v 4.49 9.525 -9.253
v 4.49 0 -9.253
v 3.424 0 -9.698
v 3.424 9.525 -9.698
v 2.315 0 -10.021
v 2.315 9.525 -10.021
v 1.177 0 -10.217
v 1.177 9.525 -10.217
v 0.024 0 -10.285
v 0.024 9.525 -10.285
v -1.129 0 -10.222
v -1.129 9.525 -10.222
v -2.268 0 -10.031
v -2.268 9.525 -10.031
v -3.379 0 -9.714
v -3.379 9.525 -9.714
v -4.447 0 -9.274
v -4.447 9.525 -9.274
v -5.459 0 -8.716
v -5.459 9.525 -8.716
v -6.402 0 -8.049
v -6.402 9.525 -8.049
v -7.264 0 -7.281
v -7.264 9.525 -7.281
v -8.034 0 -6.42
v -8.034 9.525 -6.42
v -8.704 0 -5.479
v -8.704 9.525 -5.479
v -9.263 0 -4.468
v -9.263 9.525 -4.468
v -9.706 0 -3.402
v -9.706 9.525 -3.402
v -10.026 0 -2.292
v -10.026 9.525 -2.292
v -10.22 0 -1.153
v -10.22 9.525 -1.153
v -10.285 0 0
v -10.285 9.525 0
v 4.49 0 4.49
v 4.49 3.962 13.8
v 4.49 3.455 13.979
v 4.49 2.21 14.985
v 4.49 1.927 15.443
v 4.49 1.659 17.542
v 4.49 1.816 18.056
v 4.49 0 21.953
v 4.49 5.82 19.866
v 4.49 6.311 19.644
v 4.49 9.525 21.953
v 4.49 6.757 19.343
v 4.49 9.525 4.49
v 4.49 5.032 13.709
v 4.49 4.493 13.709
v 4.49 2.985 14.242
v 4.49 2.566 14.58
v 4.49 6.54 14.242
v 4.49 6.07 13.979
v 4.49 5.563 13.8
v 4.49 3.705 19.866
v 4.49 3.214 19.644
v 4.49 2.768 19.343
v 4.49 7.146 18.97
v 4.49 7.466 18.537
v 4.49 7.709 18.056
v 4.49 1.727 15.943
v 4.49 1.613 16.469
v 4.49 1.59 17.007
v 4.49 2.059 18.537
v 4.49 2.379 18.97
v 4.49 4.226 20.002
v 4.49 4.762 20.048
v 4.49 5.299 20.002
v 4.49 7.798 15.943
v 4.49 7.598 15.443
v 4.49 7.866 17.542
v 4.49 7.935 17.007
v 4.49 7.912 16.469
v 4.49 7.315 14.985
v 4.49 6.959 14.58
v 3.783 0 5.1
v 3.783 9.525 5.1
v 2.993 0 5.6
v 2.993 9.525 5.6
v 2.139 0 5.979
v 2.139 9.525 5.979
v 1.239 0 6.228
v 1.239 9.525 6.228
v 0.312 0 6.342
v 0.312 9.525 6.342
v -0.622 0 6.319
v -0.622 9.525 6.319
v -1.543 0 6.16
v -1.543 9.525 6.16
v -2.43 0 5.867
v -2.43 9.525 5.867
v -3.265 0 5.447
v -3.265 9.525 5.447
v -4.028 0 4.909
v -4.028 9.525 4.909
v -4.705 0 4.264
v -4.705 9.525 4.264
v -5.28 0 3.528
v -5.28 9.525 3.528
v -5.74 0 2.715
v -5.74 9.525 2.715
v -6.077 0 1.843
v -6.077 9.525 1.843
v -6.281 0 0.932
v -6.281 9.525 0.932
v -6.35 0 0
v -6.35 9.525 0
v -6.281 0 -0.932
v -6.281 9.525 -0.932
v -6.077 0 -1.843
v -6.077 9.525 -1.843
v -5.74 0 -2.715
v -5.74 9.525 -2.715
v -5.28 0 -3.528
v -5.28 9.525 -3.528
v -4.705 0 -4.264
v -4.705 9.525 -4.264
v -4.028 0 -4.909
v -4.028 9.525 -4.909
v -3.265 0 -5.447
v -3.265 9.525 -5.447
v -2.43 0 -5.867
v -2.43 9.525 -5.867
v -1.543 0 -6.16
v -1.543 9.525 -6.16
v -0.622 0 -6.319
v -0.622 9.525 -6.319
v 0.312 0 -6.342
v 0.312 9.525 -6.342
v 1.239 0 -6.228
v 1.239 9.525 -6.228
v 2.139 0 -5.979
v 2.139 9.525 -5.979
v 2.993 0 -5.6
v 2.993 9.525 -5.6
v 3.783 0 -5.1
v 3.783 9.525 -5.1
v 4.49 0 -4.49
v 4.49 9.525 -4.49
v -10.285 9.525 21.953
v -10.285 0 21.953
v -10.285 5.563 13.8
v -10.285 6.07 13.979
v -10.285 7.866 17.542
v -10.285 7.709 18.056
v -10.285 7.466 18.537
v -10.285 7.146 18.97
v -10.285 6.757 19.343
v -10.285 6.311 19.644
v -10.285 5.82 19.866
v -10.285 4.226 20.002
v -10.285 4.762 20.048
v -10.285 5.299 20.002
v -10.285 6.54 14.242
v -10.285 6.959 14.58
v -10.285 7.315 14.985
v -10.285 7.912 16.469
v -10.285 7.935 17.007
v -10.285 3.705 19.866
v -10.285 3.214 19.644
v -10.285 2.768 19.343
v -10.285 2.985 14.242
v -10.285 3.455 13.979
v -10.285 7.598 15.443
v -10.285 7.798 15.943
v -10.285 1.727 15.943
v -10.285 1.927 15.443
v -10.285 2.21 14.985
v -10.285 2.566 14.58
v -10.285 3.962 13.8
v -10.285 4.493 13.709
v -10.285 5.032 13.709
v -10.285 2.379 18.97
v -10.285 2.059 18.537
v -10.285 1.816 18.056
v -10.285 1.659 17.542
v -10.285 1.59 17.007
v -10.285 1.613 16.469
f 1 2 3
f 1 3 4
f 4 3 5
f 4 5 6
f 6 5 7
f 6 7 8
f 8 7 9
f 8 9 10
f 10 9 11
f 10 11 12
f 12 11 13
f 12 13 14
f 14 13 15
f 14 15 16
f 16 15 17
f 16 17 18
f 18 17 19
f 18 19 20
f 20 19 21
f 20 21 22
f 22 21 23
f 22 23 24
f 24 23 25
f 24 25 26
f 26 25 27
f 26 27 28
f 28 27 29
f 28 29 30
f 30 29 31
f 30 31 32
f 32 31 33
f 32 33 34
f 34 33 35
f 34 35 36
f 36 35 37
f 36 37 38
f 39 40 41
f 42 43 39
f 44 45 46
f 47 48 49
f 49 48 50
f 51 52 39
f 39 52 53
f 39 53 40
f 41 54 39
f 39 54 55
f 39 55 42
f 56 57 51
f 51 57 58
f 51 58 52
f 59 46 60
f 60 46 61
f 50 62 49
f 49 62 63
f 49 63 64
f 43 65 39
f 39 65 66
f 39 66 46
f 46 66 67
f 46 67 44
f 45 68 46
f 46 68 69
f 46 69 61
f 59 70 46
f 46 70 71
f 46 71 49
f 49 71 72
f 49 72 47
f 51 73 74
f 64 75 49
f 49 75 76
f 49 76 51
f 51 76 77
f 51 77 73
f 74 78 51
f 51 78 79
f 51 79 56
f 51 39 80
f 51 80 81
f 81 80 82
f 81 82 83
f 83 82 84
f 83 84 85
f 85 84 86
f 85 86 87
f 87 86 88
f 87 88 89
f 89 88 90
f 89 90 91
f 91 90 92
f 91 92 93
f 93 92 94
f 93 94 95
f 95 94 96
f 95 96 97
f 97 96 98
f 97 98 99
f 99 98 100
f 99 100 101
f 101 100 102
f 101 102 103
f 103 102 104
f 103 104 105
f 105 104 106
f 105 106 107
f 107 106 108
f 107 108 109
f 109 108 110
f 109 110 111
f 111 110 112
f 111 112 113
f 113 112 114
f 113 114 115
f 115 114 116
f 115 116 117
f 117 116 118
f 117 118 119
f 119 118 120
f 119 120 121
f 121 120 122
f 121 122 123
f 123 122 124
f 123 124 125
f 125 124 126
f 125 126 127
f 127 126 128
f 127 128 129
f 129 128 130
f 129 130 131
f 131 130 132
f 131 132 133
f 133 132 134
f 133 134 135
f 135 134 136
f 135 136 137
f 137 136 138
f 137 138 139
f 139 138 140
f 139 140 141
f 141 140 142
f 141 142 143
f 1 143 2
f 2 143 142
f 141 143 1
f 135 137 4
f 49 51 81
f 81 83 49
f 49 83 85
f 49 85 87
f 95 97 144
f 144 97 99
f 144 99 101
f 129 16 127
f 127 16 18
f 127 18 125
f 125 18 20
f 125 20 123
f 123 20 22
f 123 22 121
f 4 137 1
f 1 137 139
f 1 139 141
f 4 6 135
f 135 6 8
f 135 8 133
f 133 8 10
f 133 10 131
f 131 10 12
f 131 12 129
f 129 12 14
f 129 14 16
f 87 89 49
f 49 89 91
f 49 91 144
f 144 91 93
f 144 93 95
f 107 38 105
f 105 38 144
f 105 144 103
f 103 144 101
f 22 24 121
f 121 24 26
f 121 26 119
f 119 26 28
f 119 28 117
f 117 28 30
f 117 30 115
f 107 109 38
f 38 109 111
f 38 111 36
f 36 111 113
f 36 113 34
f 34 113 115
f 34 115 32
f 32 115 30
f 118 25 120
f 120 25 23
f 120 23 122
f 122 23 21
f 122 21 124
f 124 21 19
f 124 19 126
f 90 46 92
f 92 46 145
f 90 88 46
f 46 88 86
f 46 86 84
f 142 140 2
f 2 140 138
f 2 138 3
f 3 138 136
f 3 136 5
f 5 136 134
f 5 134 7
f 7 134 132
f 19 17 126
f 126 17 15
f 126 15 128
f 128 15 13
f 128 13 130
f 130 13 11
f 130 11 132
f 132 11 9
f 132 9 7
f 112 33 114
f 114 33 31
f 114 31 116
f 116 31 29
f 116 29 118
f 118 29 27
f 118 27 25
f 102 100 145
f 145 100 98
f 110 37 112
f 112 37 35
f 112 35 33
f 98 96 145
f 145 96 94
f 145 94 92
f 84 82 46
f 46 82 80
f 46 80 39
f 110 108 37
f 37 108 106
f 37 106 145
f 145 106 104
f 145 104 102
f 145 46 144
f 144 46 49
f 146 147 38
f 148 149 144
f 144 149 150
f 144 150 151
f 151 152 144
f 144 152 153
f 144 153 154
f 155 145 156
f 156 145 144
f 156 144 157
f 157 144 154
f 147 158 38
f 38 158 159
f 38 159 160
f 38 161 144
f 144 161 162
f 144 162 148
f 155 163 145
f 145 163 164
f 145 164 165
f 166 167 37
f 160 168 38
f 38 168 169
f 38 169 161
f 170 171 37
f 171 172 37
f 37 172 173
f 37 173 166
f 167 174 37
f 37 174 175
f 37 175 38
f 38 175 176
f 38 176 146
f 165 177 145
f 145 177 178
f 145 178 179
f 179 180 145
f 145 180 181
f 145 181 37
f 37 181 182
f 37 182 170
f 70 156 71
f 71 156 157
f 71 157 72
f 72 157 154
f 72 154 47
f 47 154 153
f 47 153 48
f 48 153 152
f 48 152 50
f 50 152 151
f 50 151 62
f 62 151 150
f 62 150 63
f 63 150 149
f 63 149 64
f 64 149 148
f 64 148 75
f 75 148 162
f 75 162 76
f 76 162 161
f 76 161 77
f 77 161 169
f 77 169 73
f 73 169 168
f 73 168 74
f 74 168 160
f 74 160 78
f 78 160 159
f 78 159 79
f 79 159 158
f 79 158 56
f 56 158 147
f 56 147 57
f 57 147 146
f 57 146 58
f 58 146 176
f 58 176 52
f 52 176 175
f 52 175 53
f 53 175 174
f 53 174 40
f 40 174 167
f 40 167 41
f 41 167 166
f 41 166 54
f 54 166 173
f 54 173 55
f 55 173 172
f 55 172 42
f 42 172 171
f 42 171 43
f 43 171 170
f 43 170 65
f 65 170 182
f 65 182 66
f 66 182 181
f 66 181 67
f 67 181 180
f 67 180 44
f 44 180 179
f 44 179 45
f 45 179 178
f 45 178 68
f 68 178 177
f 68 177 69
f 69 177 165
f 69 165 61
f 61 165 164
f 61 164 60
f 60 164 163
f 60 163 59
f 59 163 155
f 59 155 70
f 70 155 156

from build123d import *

# Parameters (mm, degrees)
BOSS_EXTRUDE1_DEPTH = 9.525
BOSS_EXTRUDE2_DEPTH = 9.525
SKETCH3_R           = 3.175
CUT_EXTRUDE1_DEPTH  = 15.774697863


with BuildPart() as part:
    # Sketch1 → Boss-Extrude1 (new body)
    with BuildSketch(Plane(origin=(0, 0, 0), x_dir=(1, 0, 0), z_dir=(0, 1, 0))):
        with BuildLine():
            Line((4.490128061, 4.490128061), (4.490128061, 9.252628061))
            ThreePointArc((4.490128061, 9.252628061), (-10.284569803, 0), (4.490128061, -9.252628061))
            Line((4.490128061, -9.252628061), (4.490128061, -4.490128061))
            ThreePointArc((4.490128061, -4.490128061), (-6.35, 0), (4.490128061, 4.490128061))
        make_face()
    extrude(amount=BOSS_EXTRUDE1_DEPTH)

    # Sketch2 → Boss-Extrude2 (add, through all)
    with BuildSketch(Plane(origin=(0, 9.525, 0), x_dir=(1, 0, 0), z_dir=(0, 1, 0))):
        with BuildLine():
            Line((-10.284569803, 0), (-10.284569803, -21.952628061))
            Line((-10.284569803, -21.952628061), (4.490128061, -21.952628061))
            Line((4.490128061, -21.952628061), (4.490128061, -9.252628061))
            ThreePointArc((4.490128061, -9.252628061), (-5.458632639, -8.716404405), (-10.284569803, 0))
        make_face()
    extrude(amount=-BOSS_EXTRUDE2_DEPTH)

    # Sketch3 → Cut-Extrude1 (cut, through all)
    with BuildSketch(Plane.ZY.offset(10.284569803)):
        with Locations((16.872628061, 4.7625)):
            Circle(SKETCH3_R)
    extrude(amount=-CUT_EXTRUDE1_DEPTH, mode=Mode.SUBTRACT)


solid = part.part
